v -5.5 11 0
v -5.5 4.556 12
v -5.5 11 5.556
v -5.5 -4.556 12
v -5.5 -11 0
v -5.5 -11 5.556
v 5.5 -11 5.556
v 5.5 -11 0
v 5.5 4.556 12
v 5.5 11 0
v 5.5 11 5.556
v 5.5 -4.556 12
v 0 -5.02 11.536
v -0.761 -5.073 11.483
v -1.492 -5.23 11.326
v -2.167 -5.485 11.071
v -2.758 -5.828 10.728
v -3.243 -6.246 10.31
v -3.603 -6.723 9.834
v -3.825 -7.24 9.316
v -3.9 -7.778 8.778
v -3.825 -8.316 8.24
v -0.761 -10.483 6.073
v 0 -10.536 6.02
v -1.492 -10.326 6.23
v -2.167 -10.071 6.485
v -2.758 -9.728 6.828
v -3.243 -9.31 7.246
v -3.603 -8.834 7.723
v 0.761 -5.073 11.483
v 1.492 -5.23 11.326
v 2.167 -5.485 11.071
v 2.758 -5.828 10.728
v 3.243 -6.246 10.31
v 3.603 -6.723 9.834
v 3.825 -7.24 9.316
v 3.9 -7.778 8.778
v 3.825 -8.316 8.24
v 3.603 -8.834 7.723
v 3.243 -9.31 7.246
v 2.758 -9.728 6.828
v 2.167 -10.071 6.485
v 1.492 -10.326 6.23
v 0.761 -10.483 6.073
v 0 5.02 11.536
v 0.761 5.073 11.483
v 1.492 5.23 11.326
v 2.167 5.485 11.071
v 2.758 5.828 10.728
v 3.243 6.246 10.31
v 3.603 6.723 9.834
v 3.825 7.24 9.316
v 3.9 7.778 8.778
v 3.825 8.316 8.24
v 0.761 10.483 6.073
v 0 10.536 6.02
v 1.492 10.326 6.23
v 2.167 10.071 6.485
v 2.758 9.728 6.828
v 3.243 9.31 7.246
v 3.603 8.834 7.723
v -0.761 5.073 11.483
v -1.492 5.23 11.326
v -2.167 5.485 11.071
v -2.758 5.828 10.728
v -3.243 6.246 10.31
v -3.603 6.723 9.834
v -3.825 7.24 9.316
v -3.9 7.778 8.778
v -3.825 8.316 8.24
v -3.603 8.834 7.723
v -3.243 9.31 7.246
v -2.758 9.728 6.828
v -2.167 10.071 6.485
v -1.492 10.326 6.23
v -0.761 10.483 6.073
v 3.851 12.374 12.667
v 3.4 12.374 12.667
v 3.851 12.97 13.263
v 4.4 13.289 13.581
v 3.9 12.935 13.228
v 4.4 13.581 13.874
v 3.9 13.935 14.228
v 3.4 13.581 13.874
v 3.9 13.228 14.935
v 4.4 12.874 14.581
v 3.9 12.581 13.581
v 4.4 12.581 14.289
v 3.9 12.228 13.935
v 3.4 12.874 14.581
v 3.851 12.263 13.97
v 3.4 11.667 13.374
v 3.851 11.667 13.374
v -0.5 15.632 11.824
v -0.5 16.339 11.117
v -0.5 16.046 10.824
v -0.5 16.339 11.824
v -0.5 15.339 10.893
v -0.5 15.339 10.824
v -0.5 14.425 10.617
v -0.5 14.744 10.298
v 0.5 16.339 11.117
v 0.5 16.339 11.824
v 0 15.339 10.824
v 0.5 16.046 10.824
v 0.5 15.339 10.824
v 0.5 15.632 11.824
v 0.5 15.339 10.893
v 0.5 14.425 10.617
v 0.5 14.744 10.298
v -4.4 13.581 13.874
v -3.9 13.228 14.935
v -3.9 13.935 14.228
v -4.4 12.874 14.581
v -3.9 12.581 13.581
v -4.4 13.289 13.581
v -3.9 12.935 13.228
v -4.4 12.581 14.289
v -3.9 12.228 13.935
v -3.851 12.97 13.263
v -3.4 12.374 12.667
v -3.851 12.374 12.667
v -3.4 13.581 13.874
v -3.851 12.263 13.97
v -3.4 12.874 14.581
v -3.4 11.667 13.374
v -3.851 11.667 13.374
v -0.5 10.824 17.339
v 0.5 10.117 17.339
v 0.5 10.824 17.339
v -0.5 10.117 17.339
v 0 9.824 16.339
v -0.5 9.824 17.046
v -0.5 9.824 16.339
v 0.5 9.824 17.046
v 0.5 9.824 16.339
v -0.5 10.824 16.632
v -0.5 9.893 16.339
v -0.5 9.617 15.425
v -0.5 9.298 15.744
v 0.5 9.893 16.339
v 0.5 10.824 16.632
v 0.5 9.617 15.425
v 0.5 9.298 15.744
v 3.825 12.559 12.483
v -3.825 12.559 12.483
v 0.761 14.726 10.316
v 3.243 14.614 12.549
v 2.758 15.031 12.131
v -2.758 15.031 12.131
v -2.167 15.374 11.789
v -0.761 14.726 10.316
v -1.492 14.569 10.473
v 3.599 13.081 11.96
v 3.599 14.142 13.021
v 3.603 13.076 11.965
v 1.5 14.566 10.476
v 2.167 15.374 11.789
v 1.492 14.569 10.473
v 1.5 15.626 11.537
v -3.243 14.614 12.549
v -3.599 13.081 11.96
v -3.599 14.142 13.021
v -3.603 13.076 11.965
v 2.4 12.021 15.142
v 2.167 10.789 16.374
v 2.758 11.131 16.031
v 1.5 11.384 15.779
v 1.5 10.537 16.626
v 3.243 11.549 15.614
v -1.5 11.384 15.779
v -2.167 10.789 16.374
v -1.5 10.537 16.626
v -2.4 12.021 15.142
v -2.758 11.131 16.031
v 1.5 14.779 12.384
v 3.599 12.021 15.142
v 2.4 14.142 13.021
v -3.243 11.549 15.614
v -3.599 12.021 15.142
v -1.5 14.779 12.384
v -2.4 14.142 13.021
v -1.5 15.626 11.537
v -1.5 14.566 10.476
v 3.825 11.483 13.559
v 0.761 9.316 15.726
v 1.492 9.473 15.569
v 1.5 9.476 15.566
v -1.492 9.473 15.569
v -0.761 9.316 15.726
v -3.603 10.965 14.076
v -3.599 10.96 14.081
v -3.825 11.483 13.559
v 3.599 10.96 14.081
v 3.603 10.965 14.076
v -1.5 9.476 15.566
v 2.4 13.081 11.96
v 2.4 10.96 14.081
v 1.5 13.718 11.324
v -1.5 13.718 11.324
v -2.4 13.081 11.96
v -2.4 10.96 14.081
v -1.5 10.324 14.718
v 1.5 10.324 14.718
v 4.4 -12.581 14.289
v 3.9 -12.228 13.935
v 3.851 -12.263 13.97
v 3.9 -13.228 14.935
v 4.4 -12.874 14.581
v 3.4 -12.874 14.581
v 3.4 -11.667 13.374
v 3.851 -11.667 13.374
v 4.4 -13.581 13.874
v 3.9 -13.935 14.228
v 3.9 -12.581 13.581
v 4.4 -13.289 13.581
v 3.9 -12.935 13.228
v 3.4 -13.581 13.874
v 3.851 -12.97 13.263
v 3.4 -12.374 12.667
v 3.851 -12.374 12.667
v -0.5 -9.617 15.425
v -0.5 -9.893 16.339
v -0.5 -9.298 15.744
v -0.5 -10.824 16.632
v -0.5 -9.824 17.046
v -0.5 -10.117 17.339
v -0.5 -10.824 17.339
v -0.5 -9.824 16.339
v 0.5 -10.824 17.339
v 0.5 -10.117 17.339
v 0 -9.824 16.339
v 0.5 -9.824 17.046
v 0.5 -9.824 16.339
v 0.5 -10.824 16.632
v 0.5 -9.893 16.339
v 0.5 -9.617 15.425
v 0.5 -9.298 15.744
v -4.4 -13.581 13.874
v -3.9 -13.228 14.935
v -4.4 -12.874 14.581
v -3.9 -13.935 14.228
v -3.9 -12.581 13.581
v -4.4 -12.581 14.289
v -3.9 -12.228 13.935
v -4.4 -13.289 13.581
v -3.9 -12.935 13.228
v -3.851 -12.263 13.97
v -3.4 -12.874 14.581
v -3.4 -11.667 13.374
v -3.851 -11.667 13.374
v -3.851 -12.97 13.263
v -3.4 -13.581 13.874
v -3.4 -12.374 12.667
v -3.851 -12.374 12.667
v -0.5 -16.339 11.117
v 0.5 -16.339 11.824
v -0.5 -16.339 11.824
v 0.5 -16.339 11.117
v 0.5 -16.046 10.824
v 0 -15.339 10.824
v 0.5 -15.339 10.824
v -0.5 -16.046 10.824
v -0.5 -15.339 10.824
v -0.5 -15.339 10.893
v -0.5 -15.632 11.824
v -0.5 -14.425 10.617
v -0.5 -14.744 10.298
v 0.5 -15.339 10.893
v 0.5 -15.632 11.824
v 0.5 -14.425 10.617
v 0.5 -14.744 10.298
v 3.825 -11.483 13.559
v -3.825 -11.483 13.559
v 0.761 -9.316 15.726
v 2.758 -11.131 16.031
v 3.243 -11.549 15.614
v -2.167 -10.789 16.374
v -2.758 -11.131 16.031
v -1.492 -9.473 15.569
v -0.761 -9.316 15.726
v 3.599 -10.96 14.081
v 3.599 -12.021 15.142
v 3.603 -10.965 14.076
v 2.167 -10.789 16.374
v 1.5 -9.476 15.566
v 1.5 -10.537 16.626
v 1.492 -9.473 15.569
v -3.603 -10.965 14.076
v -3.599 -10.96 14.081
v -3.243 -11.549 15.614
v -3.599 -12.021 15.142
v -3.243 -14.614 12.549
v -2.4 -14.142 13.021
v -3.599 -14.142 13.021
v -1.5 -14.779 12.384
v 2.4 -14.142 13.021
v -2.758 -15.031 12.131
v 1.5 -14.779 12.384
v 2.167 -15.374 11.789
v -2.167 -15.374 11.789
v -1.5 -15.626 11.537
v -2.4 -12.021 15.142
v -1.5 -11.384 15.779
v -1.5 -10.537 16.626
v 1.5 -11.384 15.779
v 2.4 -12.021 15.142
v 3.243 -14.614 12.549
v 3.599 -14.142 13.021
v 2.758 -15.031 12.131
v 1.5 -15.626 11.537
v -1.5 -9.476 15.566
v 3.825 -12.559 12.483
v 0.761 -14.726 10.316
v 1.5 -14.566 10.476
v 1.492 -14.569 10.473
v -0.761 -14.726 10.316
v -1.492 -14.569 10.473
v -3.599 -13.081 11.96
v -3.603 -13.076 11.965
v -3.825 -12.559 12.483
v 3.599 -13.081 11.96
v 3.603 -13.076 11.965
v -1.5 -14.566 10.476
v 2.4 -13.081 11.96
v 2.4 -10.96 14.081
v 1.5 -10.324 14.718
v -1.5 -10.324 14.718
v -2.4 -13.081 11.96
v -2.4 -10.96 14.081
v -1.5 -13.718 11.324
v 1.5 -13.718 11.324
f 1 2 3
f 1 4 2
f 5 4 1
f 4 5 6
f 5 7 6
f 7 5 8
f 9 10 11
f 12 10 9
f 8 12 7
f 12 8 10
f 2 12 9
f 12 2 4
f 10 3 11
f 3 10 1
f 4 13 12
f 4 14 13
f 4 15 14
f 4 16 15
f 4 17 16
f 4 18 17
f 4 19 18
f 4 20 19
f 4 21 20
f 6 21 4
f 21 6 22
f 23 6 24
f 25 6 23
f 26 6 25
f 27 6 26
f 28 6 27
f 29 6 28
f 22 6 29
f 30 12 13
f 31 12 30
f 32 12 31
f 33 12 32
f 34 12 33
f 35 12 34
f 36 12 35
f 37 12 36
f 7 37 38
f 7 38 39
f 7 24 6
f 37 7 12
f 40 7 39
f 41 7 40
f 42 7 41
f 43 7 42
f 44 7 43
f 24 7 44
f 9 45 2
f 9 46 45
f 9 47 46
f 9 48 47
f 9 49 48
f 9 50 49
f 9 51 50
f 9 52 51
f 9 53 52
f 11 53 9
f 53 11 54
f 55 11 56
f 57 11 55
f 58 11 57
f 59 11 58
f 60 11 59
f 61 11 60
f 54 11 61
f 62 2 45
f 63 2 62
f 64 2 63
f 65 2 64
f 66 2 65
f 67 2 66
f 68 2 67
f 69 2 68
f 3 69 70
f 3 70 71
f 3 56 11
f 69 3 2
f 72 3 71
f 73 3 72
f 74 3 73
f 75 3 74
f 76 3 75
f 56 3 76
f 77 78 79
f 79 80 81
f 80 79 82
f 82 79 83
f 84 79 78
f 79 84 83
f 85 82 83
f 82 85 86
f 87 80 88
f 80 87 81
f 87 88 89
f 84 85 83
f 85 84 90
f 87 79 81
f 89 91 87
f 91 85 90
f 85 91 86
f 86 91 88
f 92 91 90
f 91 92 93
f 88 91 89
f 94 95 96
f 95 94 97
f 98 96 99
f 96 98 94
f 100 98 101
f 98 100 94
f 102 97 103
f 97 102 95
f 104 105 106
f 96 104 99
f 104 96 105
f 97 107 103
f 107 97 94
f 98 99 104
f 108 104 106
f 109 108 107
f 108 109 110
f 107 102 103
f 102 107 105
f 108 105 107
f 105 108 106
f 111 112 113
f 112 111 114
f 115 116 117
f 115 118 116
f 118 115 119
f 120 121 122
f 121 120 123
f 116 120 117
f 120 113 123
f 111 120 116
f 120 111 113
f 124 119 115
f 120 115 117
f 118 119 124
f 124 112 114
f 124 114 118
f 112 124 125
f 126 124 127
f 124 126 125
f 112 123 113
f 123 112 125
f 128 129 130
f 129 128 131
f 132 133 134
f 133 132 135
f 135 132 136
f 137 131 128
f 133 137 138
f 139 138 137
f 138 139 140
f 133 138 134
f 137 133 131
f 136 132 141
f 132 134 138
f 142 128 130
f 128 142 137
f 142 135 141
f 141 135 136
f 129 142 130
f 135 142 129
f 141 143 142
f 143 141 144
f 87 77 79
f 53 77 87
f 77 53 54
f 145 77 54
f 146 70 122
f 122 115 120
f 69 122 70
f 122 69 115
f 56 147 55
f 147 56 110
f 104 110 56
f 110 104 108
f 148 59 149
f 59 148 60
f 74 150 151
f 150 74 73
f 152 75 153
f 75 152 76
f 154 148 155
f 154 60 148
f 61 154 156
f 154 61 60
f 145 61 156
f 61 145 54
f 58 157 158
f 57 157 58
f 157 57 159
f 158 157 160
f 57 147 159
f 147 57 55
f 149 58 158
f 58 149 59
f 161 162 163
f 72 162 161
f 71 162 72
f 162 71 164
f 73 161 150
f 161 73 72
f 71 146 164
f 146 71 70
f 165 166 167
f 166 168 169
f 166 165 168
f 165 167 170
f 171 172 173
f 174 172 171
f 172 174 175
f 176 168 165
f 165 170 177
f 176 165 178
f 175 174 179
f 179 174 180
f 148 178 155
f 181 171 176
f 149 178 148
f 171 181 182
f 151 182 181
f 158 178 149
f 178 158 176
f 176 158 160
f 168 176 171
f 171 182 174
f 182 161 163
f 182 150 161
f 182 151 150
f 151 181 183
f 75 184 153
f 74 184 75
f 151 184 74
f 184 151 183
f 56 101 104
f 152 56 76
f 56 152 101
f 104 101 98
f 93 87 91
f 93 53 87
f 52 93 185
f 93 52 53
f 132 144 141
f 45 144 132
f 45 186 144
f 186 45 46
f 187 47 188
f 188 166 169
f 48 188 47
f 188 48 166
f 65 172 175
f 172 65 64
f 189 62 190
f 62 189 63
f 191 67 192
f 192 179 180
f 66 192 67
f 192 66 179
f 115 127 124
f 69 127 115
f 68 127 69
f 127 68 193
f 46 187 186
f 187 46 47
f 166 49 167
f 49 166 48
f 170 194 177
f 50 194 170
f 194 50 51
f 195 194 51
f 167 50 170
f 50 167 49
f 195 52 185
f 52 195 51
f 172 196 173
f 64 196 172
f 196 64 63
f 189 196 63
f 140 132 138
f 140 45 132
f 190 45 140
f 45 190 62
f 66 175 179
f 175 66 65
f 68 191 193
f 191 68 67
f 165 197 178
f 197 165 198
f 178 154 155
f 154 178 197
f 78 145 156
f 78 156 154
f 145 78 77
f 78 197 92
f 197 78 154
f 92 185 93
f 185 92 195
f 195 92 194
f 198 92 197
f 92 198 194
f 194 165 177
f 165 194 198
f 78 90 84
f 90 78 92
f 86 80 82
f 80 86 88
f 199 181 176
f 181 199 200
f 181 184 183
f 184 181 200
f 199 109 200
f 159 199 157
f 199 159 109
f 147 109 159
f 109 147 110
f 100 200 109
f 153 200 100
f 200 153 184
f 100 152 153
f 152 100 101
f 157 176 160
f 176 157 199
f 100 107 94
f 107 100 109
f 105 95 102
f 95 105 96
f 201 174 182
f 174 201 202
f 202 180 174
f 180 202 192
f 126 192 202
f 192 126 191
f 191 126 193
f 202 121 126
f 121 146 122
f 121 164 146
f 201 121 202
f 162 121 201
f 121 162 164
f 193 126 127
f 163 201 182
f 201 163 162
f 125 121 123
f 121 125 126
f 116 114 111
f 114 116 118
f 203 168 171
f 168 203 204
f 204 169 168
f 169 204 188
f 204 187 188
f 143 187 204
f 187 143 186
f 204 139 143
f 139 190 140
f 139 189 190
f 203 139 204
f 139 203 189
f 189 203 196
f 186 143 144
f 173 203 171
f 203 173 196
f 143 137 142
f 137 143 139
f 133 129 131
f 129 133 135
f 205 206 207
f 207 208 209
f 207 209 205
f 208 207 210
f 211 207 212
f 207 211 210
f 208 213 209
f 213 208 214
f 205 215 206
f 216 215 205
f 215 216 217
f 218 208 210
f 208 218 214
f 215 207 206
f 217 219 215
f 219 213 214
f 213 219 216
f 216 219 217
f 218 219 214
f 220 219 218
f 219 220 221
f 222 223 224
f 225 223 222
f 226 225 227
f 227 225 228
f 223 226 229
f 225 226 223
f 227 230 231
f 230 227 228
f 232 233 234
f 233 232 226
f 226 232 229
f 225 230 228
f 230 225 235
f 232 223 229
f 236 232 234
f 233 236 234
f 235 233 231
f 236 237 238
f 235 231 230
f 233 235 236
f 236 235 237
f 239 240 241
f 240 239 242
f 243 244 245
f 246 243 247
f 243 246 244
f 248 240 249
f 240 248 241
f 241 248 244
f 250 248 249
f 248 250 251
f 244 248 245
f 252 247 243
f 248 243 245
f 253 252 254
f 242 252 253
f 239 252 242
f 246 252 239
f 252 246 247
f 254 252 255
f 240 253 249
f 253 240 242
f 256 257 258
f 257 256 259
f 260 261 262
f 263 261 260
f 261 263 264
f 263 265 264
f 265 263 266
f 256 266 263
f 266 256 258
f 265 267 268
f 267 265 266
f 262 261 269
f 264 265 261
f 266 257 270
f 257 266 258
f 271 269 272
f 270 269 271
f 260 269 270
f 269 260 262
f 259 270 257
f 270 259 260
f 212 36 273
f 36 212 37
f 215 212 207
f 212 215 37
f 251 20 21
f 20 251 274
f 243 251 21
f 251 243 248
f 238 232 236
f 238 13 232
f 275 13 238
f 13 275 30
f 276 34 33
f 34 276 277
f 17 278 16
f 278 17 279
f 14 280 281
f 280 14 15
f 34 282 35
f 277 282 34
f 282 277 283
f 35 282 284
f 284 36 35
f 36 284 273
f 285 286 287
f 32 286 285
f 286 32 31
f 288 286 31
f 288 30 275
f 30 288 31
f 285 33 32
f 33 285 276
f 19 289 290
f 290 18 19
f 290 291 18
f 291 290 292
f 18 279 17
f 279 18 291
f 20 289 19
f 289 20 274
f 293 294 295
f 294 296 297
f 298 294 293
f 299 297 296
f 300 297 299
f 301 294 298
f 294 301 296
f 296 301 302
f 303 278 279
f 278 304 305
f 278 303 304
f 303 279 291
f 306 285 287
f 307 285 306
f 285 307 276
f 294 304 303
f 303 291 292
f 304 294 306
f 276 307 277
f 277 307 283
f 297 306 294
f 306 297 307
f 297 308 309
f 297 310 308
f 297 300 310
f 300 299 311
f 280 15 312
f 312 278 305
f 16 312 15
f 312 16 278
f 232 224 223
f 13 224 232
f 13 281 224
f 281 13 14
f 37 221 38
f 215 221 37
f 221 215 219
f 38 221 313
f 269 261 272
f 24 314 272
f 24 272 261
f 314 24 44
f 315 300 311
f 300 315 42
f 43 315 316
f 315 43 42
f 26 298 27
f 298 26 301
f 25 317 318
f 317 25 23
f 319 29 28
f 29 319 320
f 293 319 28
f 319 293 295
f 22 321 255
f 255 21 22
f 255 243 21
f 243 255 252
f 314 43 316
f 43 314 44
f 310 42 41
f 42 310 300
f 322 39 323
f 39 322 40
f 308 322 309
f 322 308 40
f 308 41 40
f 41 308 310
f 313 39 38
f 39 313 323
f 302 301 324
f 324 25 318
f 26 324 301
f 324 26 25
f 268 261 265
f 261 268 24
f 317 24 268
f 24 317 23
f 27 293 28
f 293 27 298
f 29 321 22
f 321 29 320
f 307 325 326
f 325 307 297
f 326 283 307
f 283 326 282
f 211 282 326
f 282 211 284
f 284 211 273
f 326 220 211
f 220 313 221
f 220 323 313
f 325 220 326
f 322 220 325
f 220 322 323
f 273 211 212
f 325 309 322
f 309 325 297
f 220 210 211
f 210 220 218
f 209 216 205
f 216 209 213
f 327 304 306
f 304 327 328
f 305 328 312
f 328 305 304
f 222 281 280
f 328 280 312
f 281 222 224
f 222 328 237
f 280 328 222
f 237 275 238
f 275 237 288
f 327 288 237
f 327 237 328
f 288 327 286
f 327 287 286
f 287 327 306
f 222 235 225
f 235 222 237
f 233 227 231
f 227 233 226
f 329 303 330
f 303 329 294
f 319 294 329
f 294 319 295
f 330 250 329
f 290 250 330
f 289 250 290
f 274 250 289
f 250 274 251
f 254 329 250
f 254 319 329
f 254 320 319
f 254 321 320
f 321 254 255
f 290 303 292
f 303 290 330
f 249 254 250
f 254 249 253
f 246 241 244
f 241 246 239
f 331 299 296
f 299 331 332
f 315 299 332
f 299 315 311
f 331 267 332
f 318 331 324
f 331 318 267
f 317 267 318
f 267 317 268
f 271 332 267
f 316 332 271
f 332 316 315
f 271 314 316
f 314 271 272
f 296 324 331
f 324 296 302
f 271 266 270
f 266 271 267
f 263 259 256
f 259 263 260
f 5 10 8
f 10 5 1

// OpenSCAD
// Generated by SolidPython 1.1.3 on 2024-01-07 22:02:25


difference() {
	translate(v = [0, 0, 1]) {
		rotate(a = 45, v = [1, 0, 0]) {
			union() {
				intersection() {
					rotate(a = 45, v = [1, 0, 0]) {
						cube(center = true, size = [11.0000000000, 22, 22]);
					}
					cube(center = true, size = [11.0000000000, 22, 22]);
				}
				union() {
					translate(v = [0, 11.0000000000, 0]) {
						rotate(a = 270, v = [1, 0, 0]) {
							difference() {
								union() {
									cylinder($fn = 32, center = true, h = 15.0000000000, r = 3.9000000000);
									union() {
										translate(v = [3.9000000000, 0, 7.5000000000]) {
											rotate(a = 45, v = [0, 1, 0]) {
												cube(center = true, size = [1, 1, 1]);
											}
										}
										rotate(a = 90, v = [0, 0, 1]) {
											translate(v = [3.9000000000, 0, 7.5000000000]) {
												rotate(a = 45, v = [0, 1, 0]) {
													cube(center = true, size = [1, 1, 1]);
												}
											}
										}
										rotate(a = 180, v = [0, 0, 1]) {
											translate(v = [3.9000000000, 0, 7.5000000000]) {
												rotate(a = 45, v = [0, 1, 0]) {
													cube(center = true, size = [1, 1, 1]);
												}
											}
										}
										rotate(a = 270, v = [0, 0, 1]) {
											translate(v = [3.9000000000, 0, 7.5000000000]) {
												rotate(a = 45, v = [0, 1, 0]) {
													cube(center = true, size = [1, 1, 1]);
												}
											}
										}
									}
								}
								union() {
									translate(v = [3.9000000000, 0, 7.5000000000]) {
										difference() {
											cube(center = true, size = [3, 3, 3]);
											cube(center = true, size = [1, 1, 5]);
										}
									}
									rotate(a = 90, v = [0, 0, 1]) {
										translate(v = [3.9000000000, 0, 7.5000000000]) {
											difference() {
												cube(center = true, size = [3, 3, 3]);
												cube(center = true, size = [1, 1, 5]);
											}
										}
									}
									rotate(a = 180, v = [0, 0, 1]) {
										translate(v = [3.9000000000, 0, 7.5000000000]) {
											difference() {
												cube(center = true, size = [3, 3, 3]);
												cube(center = true, size = [1, 1, 5]);
											}
										}
									}
									rotate(a = 270, v = [0, 0, 1]) {
										translate(v = [3.9000000000, 0, 7.5000000000]) {
											difference() {
												cube(center = true, size = [3, 3, 3]);
												cube(center = true, size = [1, 1, 5]);
											}
										}
									}
								}
							}
						}
					}
					translate(v = [0, 0, 11.0000000000]) {
						difference() {
							union() {
								cylinder($fn = 32, center = true, h = 15.0000000000, r = 3.9000000000);
								union() {
									translate(v = [3.9000000000, 0, 7.5000000000]) {
										rotate(a = 45, v = [0, 1, 0]) {
											cube(center = true, size = [1, 1, 1]);
										}
									}
									rotate(a = 90, v = [0, 0, 1]) {
										translate(v = [3.9000000000, 0, 7.5000000000]) {
											rotate(a = 45, v = [0, 1, 0]) {
												cube(center = true, size = [1, 1, 1]);
											}
										}
									}
									rotate(a = 180, v = [0, 0, 1]) {
										translate(v = [3.9000000000, 0, 7.5000000000]) {
											rotate(a = 45, v = [0, 1, 0]) {
												cube(center = true, size = [1, 1, 1]);
											}
										}
									}
									rotate(a = 270, v = [0, 0, 1]) {
										translate(v = [3.9000000000, 0, 7.5000000000]) {
											rotate(a = 45, v = [0, 1, 0]) {
												cube(center = true, size = [1, 1, 1]);
											}
										}
									}
								}
							}
							union() {
								translate(v = [3.9000000000, 0, 7.5000000000]) {
									difference() {
										cube(center = true, size = [3, 3, 3]);
										cube(center = true, size = [1, 1, 5]);
									}
								}
								rotate(a = 90, v = [0, 0, 1]) {
									translate(v = [3.9000000000, 0, 7.5000000000]) {
										difference() {
											cube(center = true, size = [3, 3, 3]);
											cube(center = true, size = [1, 1, 5]);
										}
									}
								}
								rotate(a = 180, v = [0, 0, 1]) {
									translate(v = [3.9000000000, 0, 7.5000000000]) {
										difference() {
											cube(center = true, size = [3, 3, 3]);
											cube(center = true, size = [1, 1, 5]);
										}
									}
								}
								rotate(a = 270, v = [0, 0, 1]) {
									translate(v = [3.9000000000, 0, 7.5000000000]) {
										difference() {
											cube(center = true, size = [3, 3, 3]);
											cube(center = true, size = [1, 1, 5]);
										}
									}
								}
							}
						}
					}
					intersection() {
						rotate(a = 45, v = [1, 0, 0]) {
							cube(center = true, size = [11.0000000000, 22, 22]);
						}
						cube(center = true, size = [11.0000000000, 22, 22]);
					}
				}
			}
		}
	}
	translate(v = [0, 0, -150]) {
		cube(center = true, size = [300, 300, 300]);
	}
}
/***********************************************
*********      SolidPython code:      **********
************************************************
 
#! /usr/bin/env python3
import sys
from math import cos, radians, sin, pi, tau
from pathlib import Path

from solid import *
from solid.utils import *

from typing import Set, Sequence, List, Callable, Optional, Union, Iterable, Tuple

import numpy as np

import extrusion_fittings as ef

class HoldingBlock:
	def __init__(self,b_thickness = 7.5,i_diameter = 8,o_diameter=22,cyl_sides = 32,tolerance = .1):
		self.radius = i_diameter/2 - tolerance
		self.b_thickness = b_thickness
		self.o_diameter = o_diameter
		self.cyl_sides = cyl_sides

	def peg(self) -> OpenSCADObject:
		peg = cylinder(r=self.radius, h=self.b_thickness*2, segments = self.cyl_sides, center=True)
		nub = cube([1,1,1],center=True)
		nub = rotate(a = 45, v=(0,1,0))(nub)
		nub = translate([self.radius,0,self.b_thickness])(nub)
		nubs = nub
		nubs += rotate(a = 90, v=(0,0,1))(nub)		
		nubs += rotate(a = 180, v=(0,0,1))(nub)		
		nubs += rotate(a = 270, v=(0,0,1))(nub)		
		slot = cube([3,3,3],center=True) - cube([1,1,5],center=True)
		slot = translate([self.radius,0,self.b_thickness])(slot)
		slots = slot
		slots += rotate(a = 90, v=(0,0,1))(slot)		
		slots += rotate(a = 180, v=(0,0,1))(slot)		
		slots += rotate(a = 270, v=(0,0,1))(slot)		

		return peg + nubs - slots

	def diagonal_block(self) -> OpenSCADObject:
		upper_peg = self.peg()
		upper_peg = translate([0,0,self.o_diameter/2])(upper_peg)
		lower_peg = self.peg()
		lower_peg = rotate(a = 270, v=(1,0,0))(lower_peg)
		lower_peg = translate([0,self.o_diameter/2,0])(lower_peg)
		block = cube([self.o_diameter/2,self.o_diameter,self.o_diameter], center = True)
		block = rotate(a = 45, v=(1,0,0))(block)
		block *= cube([self.o_diameter/2,self.o_diameter,self.o_diameter], center = True)
		block += lower_peg + upper_peg + block
		block = rotate(a = 45, v=(1,0,0))(block)
		block = translate([0,0,1])(block)
		return block 

	def bisect_floor(self,input) -> OpenSCADObject:
		size = 300
		floor = translate([0,0,-150])(cube([300,300,300],center = True))
		return input - floor

if __name__ == "__main__":
	out_dir = sys.argv[1] if len(sys.argv) > 1 else Path(__file__).parent

	h = HoldingBlock()
	a = h.diagonal_block()
	a = h.bisect_floor(a)
	# a = h.peg()

	file_out = scad_render_to_file(a,  out_dir=out_dir, include_orig_code=True)
	print(f"{__file__}: SCAD file written to: \n{file_out}")
 
 
************************************************/
